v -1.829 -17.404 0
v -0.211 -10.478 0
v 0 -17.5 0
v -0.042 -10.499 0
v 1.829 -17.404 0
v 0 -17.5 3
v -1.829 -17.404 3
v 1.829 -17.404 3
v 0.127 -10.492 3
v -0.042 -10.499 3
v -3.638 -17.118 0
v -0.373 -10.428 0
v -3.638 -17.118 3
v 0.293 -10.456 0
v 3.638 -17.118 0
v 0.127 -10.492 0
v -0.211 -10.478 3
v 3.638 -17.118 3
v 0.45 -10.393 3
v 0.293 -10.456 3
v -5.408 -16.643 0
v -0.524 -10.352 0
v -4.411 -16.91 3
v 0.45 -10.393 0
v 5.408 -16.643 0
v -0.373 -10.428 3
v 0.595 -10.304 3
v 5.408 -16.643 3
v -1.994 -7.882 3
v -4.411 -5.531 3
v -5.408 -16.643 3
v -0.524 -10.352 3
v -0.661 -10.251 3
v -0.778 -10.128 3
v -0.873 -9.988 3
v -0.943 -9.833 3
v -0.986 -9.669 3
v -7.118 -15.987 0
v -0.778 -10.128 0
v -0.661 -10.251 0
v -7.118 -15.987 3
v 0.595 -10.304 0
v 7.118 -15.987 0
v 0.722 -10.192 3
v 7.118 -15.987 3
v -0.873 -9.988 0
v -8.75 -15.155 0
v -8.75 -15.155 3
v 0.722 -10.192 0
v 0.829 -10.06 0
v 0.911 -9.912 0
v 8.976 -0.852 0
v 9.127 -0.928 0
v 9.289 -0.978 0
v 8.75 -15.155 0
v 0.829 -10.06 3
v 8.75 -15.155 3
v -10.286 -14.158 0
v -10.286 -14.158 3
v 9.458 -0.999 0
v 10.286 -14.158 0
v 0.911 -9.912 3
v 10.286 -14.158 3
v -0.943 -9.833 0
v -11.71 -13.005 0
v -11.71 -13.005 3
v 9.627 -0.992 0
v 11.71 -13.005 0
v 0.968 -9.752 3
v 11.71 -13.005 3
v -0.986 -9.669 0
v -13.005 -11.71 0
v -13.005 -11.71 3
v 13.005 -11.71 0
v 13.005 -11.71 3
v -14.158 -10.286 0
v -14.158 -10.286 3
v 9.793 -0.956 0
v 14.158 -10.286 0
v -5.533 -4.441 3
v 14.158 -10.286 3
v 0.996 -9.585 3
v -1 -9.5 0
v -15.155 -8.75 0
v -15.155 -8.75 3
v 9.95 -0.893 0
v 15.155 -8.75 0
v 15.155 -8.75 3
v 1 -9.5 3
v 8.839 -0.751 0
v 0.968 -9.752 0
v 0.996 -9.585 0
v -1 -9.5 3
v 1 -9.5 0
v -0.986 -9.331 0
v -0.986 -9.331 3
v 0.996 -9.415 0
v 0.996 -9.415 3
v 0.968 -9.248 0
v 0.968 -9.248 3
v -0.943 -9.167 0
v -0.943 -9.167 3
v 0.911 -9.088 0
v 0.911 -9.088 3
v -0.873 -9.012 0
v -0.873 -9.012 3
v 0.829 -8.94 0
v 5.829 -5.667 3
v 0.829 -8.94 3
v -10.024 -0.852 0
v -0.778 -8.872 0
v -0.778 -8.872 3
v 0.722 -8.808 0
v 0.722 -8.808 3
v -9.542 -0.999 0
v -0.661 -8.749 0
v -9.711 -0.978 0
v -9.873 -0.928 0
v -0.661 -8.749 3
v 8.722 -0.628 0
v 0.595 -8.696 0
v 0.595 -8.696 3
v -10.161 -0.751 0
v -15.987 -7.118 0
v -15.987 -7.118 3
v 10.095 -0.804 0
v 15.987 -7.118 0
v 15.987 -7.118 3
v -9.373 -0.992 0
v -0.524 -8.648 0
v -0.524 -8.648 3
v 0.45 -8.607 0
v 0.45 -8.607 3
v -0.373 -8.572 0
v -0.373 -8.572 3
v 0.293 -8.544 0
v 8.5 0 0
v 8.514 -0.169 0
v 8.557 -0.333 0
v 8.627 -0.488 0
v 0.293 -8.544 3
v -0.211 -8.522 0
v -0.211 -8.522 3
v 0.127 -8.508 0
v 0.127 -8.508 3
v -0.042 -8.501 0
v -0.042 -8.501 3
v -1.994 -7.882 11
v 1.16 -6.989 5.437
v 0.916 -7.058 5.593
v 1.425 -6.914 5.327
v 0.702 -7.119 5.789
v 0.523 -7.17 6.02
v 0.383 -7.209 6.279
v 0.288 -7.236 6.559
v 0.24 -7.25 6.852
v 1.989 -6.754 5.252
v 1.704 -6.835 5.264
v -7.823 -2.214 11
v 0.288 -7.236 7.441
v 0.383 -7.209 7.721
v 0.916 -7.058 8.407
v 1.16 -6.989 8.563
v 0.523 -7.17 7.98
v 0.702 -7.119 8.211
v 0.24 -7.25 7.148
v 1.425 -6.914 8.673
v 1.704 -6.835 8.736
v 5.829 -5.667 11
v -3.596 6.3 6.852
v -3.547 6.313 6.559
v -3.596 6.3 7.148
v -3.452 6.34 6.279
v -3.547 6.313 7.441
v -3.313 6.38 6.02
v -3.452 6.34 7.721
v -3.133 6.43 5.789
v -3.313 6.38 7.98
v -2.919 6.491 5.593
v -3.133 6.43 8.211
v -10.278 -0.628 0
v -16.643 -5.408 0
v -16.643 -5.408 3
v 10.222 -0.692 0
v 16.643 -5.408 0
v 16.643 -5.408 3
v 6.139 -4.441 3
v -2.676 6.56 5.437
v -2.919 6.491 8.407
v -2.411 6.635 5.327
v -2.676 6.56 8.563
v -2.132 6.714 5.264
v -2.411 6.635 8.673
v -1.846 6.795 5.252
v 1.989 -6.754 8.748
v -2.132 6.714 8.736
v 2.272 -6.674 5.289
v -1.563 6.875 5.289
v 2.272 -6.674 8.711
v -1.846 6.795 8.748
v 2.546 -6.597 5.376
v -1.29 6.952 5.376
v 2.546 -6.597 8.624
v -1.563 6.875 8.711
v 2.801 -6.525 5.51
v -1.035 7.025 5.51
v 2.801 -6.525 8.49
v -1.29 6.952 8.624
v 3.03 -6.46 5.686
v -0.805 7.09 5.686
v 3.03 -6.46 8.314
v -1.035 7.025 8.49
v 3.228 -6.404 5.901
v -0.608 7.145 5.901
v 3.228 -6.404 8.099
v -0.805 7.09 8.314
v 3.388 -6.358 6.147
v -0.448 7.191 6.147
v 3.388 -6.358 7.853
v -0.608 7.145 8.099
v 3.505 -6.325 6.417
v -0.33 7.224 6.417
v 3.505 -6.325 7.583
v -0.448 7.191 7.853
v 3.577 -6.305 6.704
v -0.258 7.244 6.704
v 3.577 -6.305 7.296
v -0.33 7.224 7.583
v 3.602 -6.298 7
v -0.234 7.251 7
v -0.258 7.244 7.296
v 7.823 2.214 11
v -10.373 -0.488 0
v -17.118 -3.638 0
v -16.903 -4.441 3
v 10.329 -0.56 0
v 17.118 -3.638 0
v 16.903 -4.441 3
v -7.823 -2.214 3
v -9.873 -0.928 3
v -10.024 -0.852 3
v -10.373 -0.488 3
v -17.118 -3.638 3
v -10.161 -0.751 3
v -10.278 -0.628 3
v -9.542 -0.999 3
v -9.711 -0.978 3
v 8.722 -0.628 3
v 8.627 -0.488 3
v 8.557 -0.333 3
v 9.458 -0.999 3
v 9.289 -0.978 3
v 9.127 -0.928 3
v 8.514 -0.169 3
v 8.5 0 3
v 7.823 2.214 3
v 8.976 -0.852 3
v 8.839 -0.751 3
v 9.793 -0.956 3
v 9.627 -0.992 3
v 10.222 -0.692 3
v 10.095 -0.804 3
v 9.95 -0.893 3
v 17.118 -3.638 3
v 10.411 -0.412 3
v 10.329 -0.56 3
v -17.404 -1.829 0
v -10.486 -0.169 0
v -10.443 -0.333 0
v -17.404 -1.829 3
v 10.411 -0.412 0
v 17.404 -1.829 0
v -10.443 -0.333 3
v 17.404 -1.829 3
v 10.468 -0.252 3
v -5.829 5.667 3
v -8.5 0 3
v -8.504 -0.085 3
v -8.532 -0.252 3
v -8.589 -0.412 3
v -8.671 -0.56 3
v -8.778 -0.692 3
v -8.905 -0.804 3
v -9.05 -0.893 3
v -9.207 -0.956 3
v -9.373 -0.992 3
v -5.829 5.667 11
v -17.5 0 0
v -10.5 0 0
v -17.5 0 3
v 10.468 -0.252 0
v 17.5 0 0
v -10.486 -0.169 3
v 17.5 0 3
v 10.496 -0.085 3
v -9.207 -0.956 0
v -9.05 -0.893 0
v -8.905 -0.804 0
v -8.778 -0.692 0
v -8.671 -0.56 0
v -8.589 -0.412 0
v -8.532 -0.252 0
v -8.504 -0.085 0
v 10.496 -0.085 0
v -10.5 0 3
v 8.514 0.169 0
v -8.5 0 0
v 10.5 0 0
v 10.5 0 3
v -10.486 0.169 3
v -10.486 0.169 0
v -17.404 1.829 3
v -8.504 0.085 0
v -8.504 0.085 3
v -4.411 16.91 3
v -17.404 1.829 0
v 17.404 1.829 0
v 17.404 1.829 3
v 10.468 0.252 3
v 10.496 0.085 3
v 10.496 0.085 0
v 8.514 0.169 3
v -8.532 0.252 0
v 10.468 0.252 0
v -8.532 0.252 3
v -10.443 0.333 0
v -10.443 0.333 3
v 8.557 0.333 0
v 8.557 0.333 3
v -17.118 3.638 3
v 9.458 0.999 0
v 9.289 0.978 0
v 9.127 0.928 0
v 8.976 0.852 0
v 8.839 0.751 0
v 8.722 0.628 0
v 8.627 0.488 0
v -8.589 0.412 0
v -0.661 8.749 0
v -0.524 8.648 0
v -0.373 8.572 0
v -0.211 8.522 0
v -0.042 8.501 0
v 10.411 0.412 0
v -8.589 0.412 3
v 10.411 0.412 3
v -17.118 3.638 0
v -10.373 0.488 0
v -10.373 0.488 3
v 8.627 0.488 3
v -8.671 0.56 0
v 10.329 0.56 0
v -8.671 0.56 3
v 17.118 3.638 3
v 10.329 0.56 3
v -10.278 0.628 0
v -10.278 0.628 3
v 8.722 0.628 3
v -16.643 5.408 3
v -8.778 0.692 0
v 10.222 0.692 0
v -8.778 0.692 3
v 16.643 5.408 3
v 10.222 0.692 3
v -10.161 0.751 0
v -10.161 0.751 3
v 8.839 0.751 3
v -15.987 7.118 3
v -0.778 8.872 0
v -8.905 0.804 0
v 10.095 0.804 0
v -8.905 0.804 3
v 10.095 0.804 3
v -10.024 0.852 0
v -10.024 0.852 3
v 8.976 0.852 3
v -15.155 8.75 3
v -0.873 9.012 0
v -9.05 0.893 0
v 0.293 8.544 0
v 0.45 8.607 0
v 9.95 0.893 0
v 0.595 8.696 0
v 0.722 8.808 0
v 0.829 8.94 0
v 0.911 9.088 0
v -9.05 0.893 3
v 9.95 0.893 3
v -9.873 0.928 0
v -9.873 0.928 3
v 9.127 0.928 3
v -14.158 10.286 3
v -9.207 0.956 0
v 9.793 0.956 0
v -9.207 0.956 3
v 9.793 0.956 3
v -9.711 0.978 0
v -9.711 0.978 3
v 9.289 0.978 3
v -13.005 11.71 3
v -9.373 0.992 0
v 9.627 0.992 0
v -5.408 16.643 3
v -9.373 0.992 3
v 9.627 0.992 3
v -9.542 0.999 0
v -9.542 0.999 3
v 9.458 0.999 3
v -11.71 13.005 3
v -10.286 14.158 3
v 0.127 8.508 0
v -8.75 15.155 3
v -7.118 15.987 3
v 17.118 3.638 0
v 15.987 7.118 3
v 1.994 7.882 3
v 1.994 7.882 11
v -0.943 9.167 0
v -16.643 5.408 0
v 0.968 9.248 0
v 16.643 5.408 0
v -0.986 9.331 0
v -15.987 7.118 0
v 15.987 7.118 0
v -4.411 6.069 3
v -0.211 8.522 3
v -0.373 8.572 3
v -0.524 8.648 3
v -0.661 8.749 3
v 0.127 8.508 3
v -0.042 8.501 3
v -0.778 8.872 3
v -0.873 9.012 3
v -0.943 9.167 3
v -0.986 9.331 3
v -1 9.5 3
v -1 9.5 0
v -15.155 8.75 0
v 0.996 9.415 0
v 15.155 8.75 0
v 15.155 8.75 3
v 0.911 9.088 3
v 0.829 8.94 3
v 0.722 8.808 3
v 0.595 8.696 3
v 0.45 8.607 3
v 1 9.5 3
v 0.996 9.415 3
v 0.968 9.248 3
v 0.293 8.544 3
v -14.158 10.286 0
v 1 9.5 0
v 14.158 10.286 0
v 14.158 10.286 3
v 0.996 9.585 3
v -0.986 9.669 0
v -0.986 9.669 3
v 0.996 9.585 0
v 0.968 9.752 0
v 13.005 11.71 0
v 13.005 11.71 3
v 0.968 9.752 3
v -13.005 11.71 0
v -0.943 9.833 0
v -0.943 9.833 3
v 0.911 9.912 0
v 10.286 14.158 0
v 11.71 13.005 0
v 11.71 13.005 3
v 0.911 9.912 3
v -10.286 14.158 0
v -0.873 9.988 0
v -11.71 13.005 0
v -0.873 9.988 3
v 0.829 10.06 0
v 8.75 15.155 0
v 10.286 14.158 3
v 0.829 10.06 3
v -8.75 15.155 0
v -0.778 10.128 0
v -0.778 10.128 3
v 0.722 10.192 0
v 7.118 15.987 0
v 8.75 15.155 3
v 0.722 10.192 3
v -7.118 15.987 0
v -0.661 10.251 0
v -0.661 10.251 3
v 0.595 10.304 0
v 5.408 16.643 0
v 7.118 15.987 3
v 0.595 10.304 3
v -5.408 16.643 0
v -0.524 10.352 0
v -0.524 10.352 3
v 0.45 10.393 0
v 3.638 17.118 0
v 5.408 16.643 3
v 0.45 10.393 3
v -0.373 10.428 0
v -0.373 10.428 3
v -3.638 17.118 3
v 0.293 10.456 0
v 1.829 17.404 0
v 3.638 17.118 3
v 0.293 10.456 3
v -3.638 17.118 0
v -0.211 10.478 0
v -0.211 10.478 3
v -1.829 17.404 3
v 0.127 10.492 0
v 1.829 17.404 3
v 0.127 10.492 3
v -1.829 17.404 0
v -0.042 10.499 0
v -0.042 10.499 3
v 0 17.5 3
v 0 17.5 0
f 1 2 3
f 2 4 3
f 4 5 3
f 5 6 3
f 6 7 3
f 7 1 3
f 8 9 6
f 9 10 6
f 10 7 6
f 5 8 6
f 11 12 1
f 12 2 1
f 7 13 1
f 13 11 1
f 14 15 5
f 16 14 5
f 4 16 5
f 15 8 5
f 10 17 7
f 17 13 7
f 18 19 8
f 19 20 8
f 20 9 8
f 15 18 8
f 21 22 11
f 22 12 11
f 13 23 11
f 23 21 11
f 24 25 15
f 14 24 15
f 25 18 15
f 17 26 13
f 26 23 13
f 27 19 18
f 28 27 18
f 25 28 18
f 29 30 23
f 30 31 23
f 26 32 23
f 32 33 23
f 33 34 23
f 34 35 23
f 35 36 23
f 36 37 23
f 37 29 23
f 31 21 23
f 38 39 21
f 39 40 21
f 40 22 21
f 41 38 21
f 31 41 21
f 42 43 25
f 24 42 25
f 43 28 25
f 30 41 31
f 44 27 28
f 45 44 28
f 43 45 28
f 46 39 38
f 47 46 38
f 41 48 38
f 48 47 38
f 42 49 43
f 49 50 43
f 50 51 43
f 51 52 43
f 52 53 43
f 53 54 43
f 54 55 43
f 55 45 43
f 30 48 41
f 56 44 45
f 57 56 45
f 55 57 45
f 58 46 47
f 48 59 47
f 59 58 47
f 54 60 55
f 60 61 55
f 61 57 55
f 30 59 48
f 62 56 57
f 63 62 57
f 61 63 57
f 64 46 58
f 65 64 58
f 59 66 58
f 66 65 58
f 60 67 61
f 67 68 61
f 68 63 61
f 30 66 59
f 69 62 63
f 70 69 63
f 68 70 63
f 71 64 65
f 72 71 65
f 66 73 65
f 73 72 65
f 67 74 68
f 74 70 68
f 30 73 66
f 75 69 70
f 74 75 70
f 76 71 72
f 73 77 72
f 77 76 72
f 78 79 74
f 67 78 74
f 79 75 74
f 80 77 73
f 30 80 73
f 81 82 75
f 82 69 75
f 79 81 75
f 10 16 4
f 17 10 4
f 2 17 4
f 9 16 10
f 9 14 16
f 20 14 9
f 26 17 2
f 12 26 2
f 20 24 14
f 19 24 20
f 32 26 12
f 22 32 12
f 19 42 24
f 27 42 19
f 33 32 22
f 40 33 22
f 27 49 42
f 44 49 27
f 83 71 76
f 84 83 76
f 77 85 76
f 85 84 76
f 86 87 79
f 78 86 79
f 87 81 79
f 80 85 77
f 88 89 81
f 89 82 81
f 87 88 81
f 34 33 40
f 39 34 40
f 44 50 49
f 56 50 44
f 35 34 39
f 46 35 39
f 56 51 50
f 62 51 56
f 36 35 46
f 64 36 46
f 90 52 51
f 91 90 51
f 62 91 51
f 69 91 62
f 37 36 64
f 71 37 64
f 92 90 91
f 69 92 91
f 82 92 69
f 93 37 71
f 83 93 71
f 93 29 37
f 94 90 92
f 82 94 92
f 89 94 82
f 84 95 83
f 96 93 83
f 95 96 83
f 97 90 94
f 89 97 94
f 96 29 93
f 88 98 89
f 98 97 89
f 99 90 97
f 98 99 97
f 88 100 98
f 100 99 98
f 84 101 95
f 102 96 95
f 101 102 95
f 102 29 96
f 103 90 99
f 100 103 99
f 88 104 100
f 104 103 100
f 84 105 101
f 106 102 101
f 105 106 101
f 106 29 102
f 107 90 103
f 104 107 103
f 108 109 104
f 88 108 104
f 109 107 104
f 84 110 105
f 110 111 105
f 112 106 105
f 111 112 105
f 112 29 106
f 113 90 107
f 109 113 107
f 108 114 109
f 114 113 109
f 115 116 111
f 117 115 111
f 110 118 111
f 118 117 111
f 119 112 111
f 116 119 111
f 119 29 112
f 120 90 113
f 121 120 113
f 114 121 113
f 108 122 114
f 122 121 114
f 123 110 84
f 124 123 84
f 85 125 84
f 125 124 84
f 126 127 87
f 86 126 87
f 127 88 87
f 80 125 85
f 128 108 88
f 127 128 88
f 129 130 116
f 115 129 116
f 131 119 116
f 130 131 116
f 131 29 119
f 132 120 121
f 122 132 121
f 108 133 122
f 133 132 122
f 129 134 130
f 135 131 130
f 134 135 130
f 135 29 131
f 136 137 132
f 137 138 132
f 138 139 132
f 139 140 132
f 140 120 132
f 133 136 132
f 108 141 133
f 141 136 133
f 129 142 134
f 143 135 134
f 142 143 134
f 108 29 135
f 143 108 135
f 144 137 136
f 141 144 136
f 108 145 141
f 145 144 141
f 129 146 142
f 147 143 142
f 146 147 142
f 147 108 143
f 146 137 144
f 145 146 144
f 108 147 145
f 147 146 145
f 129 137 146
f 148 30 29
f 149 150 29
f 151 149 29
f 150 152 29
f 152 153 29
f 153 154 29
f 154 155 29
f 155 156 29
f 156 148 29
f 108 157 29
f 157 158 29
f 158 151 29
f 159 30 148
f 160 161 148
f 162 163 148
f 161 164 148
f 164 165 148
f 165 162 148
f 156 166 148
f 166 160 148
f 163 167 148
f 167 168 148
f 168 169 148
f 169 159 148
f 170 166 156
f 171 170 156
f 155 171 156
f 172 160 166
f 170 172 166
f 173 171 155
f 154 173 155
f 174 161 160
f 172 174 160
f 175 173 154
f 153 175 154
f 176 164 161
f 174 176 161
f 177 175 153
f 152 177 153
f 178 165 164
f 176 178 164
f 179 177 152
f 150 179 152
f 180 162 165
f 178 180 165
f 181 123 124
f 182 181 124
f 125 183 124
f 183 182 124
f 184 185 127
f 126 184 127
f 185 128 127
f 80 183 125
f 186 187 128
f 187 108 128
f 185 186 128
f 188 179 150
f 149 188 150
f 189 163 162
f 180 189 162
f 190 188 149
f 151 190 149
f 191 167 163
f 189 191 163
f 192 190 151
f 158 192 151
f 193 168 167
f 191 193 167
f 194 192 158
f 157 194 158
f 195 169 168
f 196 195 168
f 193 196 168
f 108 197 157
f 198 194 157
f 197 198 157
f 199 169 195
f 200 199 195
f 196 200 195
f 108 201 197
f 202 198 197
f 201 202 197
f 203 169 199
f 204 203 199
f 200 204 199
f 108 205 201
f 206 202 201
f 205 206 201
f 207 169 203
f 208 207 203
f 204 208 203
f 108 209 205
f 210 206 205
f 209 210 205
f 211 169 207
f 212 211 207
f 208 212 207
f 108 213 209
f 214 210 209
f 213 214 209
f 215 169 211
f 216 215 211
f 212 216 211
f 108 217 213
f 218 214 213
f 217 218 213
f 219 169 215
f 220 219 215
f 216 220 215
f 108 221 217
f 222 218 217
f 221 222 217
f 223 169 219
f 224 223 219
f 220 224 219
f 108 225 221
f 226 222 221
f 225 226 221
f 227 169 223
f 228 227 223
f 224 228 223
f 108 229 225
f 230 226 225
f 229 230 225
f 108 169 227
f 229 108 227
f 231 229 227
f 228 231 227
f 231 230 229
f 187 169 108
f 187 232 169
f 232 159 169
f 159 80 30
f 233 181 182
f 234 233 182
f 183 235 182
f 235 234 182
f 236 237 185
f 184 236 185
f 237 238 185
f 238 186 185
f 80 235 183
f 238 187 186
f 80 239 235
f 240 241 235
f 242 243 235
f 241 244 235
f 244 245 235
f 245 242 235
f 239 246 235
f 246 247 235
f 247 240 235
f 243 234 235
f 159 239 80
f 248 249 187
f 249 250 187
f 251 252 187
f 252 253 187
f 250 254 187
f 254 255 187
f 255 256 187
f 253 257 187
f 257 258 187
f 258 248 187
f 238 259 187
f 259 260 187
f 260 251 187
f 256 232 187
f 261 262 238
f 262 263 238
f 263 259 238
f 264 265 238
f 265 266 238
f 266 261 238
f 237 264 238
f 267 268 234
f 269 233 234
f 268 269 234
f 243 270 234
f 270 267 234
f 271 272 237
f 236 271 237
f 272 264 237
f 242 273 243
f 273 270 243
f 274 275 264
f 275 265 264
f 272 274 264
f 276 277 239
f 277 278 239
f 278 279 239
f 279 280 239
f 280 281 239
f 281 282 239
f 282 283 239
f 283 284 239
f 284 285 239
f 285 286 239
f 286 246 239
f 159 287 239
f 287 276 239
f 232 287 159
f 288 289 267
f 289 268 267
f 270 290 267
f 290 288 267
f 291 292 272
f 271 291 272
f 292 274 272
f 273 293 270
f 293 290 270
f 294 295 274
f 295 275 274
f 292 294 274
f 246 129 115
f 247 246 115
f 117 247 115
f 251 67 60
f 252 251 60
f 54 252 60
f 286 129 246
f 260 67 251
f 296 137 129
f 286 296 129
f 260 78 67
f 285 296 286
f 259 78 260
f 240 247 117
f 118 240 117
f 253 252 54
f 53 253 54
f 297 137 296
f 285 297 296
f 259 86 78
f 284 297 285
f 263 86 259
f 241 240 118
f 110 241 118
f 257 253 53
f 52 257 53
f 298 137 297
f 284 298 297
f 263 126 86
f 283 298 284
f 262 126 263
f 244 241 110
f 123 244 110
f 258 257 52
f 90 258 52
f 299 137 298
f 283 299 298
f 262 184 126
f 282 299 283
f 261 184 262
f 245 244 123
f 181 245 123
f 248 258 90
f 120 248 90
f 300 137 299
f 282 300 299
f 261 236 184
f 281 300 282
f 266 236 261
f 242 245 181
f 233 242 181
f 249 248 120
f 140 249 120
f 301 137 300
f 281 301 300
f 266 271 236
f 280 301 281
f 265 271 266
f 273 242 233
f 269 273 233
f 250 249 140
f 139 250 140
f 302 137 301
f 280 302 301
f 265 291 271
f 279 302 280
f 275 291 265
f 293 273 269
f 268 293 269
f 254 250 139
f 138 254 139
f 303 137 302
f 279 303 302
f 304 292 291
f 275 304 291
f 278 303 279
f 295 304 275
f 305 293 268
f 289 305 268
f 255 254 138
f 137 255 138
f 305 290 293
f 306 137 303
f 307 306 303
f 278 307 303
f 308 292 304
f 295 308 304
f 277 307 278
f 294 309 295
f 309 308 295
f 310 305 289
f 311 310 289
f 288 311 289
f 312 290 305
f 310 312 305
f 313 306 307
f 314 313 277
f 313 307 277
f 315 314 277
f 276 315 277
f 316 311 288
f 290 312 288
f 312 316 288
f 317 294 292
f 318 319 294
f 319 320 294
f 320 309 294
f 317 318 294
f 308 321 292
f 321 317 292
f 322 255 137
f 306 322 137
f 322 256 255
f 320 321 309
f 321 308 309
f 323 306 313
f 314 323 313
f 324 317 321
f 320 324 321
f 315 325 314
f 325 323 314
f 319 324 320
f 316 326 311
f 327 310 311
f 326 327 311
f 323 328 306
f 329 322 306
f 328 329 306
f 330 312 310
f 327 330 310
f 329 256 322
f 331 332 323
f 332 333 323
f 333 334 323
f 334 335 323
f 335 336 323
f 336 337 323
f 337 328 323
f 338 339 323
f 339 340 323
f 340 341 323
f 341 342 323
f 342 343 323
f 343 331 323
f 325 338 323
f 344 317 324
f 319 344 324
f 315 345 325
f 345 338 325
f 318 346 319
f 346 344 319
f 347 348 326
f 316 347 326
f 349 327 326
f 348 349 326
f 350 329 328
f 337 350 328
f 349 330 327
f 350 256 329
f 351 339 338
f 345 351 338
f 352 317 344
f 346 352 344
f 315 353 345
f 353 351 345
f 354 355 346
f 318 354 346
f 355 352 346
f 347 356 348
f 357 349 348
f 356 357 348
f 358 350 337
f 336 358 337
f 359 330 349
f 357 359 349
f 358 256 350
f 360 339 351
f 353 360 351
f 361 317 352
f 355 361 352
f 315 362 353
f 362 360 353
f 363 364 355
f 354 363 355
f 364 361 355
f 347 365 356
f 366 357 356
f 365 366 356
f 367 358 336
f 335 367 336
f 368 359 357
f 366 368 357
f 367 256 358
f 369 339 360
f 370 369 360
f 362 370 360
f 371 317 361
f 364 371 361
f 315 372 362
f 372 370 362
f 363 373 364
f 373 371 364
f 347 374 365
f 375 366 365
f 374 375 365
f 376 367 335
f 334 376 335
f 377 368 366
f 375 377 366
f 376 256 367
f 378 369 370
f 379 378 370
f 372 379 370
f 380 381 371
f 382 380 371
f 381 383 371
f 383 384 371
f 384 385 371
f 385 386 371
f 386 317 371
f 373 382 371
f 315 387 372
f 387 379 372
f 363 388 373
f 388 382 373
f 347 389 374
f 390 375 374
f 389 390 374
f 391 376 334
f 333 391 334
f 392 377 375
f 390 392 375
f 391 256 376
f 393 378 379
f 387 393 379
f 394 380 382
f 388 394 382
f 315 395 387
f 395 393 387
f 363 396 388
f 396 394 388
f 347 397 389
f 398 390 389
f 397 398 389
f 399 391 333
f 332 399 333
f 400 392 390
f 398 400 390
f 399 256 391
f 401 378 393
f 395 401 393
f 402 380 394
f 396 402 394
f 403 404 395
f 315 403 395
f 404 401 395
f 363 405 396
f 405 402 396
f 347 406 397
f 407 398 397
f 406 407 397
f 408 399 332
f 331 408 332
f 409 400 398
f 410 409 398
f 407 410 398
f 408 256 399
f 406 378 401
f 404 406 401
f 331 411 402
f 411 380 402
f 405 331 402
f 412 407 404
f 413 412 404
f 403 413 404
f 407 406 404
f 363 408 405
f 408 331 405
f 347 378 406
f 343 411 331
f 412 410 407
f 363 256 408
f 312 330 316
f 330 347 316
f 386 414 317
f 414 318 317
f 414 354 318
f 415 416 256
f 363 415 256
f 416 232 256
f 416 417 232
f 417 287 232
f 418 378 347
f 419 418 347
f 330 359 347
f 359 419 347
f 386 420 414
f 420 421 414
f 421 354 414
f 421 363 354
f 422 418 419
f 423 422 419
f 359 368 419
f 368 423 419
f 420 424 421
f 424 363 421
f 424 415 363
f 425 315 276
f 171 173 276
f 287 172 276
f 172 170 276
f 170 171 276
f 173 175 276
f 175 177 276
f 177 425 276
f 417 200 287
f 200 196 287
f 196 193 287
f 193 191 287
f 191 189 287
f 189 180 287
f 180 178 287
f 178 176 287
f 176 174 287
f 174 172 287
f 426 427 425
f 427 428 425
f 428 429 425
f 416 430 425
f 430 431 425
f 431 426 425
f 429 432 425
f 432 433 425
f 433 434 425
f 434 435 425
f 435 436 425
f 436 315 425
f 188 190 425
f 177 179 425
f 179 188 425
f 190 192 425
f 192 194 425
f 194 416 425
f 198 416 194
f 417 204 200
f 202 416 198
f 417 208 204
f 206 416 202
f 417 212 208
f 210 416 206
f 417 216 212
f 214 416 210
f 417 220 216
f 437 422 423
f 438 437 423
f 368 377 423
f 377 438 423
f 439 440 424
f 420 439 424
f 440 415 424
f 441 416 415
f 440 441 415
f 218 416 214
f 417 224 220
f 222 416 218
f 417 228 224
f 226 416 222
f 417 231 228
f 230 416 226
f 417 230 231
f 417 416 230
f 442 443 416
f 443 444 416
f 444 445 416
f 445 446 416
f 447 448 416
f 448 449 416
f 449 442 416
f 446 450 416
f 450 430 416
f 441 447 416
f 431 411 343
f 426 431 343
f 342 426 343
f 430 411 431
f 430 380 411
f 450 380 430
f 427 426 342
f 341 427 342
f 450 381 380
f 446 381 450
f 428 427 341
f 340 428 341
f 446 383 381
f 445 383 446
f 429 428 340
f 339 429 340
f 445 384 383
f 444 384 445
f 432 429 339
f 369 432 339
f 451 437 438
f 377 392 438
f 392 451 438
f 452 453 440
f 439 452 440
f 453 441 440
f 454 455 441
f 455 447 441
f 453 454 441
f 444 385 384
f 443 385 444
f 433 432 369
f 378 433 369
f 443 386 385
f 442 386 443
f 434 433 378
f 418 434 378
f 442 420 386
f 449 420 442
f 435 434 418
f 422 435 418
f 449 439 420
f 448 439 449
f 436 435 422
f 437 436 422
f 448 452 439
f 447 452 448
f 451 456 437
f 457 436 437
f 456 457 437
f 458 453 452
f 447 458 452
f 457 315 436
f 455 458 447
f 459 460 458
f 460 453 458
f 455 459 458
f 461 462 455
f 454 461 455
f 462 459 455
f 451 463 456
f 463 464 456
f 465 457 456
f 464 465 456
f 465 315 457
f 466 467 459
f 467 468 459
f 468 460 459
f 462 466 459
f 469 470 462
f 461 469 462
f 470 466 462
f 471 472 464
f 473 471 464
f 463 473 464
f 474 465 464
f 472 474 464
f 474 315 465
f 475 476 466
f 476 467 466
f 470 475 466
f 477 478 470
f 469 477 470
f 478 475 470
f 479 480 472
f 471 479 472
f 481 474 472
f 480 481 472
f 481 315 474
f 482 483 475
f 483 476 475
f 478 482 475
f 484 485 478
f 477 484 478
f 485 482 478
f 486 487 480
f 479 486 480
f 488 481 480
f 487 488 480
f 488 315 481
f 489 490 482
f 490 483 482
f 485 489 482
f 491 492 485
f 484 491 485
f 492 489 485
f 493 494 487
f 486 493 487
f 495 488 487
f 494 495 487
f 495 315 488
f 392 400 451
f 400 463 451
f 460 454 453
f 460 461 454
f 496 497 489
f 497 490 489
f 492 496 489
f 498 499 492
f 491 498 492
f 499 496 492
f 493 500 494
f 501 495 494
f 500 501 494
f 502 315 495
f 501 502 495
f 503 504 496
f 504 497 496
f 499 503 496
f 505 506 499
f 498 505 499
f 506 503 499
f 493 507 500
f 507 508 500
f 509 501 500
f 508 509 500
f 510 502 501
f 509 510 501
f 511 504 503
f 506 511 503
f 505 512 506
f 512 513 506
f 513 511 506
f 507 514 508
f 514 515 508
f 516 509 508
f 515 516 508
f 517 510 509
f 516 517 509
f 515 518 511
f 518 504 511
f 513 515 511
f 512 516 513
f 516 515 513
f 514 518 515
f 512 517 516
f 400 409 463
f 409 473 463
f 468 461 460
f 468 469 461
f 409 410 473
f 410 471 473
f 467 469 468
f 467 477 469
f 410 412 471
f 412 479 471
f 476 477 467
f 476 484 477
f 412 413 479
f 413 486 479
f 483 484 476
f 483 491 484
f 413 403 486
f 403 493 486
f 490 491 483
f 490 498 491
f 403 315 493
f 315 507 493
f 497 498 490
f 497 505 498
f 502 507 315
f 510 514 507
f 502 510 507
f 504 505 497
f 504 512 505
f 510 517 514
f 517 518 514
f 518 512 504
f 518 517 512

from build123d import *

# Parameters (mm, degrees)
CROQUIS1_R              = 17.5
CROQUIS1_R_2            = 1
SALIENTE_EXTRUIR1_DEPTH = 3
SALIENTE_EXTRUIR2_DEPTH = 8
CORTAR_EXTRUIR1_REACH   = 34.974
CROQUIS3_R              = 1.75


with BuildPart() as part:
    # Croquis1 → Saliente-Extruir1 (new body)
    with BuildSketch(Plane.XY):
        Circle(CROQUIS1_R)
        with Locations((0, 9.5)):
            Circle(CROQUIS1_R_2, mode=Mode.SUBTRACT)
        with Locations((9.5, 0)):
            Circle(CROQUIS1_R_2, mode=Mode.SUBTRACT)
        with Locations((0, -9.5)):
            Circle(CROQUIS1_R_2, mode=Mode.SUBTRACT)
        with Locations((-9.5, 0)):
            Circle(CROQUIS1_R_2, mode=Mode.SUBTRACT)
    extrude(amount=SALIENTE_EXTRUIR1_DEPTH)

    # Croquis2 → Saliente-Extruir2 (add)
    with BuildSketch(Plane.XY.offset(3)):
        Polygon((1.993579006, 7.881819991), (-5.829066837, 5.667400059), (-7.822645843, -2.214419931), (-1.993579006, -7.881819991), (5.829066837, -5.667400059), (7.822645843, 2.214419931), align=None)
    extrude(amount=SALIENTE_EXTRUIR2_DEPTH)

    # Croquis3 → Cortar-Extruir1 (cut, up to next)
    with BuildSketch(Plane(origin=(1.917743915, -6.774610025, 0), x_dir=(0.9621911038516526, 0.27237525524308964, 0), z_dir=(0.27237525524308964, -0.9621911038516526, 0)), mode=Mode.PRIVATE) as cortar_extruir1_sk1:
        with Locations((0, 7)):
            Circle(CROQUIS3_R)
    cortar_extruir1_tool1 = extrude(cortar_extruir1_sk1.sketch, amount=-CORTAR_EXTRUIR1_REACH, mode=Mode.PRIVATE) & part.part
    add(cortar_extruir1_tool1.solids().sort_by_distance((1.917744, -6.77461, 7))[0], mode=Mode.SUBTRACT)


solid = part.part
